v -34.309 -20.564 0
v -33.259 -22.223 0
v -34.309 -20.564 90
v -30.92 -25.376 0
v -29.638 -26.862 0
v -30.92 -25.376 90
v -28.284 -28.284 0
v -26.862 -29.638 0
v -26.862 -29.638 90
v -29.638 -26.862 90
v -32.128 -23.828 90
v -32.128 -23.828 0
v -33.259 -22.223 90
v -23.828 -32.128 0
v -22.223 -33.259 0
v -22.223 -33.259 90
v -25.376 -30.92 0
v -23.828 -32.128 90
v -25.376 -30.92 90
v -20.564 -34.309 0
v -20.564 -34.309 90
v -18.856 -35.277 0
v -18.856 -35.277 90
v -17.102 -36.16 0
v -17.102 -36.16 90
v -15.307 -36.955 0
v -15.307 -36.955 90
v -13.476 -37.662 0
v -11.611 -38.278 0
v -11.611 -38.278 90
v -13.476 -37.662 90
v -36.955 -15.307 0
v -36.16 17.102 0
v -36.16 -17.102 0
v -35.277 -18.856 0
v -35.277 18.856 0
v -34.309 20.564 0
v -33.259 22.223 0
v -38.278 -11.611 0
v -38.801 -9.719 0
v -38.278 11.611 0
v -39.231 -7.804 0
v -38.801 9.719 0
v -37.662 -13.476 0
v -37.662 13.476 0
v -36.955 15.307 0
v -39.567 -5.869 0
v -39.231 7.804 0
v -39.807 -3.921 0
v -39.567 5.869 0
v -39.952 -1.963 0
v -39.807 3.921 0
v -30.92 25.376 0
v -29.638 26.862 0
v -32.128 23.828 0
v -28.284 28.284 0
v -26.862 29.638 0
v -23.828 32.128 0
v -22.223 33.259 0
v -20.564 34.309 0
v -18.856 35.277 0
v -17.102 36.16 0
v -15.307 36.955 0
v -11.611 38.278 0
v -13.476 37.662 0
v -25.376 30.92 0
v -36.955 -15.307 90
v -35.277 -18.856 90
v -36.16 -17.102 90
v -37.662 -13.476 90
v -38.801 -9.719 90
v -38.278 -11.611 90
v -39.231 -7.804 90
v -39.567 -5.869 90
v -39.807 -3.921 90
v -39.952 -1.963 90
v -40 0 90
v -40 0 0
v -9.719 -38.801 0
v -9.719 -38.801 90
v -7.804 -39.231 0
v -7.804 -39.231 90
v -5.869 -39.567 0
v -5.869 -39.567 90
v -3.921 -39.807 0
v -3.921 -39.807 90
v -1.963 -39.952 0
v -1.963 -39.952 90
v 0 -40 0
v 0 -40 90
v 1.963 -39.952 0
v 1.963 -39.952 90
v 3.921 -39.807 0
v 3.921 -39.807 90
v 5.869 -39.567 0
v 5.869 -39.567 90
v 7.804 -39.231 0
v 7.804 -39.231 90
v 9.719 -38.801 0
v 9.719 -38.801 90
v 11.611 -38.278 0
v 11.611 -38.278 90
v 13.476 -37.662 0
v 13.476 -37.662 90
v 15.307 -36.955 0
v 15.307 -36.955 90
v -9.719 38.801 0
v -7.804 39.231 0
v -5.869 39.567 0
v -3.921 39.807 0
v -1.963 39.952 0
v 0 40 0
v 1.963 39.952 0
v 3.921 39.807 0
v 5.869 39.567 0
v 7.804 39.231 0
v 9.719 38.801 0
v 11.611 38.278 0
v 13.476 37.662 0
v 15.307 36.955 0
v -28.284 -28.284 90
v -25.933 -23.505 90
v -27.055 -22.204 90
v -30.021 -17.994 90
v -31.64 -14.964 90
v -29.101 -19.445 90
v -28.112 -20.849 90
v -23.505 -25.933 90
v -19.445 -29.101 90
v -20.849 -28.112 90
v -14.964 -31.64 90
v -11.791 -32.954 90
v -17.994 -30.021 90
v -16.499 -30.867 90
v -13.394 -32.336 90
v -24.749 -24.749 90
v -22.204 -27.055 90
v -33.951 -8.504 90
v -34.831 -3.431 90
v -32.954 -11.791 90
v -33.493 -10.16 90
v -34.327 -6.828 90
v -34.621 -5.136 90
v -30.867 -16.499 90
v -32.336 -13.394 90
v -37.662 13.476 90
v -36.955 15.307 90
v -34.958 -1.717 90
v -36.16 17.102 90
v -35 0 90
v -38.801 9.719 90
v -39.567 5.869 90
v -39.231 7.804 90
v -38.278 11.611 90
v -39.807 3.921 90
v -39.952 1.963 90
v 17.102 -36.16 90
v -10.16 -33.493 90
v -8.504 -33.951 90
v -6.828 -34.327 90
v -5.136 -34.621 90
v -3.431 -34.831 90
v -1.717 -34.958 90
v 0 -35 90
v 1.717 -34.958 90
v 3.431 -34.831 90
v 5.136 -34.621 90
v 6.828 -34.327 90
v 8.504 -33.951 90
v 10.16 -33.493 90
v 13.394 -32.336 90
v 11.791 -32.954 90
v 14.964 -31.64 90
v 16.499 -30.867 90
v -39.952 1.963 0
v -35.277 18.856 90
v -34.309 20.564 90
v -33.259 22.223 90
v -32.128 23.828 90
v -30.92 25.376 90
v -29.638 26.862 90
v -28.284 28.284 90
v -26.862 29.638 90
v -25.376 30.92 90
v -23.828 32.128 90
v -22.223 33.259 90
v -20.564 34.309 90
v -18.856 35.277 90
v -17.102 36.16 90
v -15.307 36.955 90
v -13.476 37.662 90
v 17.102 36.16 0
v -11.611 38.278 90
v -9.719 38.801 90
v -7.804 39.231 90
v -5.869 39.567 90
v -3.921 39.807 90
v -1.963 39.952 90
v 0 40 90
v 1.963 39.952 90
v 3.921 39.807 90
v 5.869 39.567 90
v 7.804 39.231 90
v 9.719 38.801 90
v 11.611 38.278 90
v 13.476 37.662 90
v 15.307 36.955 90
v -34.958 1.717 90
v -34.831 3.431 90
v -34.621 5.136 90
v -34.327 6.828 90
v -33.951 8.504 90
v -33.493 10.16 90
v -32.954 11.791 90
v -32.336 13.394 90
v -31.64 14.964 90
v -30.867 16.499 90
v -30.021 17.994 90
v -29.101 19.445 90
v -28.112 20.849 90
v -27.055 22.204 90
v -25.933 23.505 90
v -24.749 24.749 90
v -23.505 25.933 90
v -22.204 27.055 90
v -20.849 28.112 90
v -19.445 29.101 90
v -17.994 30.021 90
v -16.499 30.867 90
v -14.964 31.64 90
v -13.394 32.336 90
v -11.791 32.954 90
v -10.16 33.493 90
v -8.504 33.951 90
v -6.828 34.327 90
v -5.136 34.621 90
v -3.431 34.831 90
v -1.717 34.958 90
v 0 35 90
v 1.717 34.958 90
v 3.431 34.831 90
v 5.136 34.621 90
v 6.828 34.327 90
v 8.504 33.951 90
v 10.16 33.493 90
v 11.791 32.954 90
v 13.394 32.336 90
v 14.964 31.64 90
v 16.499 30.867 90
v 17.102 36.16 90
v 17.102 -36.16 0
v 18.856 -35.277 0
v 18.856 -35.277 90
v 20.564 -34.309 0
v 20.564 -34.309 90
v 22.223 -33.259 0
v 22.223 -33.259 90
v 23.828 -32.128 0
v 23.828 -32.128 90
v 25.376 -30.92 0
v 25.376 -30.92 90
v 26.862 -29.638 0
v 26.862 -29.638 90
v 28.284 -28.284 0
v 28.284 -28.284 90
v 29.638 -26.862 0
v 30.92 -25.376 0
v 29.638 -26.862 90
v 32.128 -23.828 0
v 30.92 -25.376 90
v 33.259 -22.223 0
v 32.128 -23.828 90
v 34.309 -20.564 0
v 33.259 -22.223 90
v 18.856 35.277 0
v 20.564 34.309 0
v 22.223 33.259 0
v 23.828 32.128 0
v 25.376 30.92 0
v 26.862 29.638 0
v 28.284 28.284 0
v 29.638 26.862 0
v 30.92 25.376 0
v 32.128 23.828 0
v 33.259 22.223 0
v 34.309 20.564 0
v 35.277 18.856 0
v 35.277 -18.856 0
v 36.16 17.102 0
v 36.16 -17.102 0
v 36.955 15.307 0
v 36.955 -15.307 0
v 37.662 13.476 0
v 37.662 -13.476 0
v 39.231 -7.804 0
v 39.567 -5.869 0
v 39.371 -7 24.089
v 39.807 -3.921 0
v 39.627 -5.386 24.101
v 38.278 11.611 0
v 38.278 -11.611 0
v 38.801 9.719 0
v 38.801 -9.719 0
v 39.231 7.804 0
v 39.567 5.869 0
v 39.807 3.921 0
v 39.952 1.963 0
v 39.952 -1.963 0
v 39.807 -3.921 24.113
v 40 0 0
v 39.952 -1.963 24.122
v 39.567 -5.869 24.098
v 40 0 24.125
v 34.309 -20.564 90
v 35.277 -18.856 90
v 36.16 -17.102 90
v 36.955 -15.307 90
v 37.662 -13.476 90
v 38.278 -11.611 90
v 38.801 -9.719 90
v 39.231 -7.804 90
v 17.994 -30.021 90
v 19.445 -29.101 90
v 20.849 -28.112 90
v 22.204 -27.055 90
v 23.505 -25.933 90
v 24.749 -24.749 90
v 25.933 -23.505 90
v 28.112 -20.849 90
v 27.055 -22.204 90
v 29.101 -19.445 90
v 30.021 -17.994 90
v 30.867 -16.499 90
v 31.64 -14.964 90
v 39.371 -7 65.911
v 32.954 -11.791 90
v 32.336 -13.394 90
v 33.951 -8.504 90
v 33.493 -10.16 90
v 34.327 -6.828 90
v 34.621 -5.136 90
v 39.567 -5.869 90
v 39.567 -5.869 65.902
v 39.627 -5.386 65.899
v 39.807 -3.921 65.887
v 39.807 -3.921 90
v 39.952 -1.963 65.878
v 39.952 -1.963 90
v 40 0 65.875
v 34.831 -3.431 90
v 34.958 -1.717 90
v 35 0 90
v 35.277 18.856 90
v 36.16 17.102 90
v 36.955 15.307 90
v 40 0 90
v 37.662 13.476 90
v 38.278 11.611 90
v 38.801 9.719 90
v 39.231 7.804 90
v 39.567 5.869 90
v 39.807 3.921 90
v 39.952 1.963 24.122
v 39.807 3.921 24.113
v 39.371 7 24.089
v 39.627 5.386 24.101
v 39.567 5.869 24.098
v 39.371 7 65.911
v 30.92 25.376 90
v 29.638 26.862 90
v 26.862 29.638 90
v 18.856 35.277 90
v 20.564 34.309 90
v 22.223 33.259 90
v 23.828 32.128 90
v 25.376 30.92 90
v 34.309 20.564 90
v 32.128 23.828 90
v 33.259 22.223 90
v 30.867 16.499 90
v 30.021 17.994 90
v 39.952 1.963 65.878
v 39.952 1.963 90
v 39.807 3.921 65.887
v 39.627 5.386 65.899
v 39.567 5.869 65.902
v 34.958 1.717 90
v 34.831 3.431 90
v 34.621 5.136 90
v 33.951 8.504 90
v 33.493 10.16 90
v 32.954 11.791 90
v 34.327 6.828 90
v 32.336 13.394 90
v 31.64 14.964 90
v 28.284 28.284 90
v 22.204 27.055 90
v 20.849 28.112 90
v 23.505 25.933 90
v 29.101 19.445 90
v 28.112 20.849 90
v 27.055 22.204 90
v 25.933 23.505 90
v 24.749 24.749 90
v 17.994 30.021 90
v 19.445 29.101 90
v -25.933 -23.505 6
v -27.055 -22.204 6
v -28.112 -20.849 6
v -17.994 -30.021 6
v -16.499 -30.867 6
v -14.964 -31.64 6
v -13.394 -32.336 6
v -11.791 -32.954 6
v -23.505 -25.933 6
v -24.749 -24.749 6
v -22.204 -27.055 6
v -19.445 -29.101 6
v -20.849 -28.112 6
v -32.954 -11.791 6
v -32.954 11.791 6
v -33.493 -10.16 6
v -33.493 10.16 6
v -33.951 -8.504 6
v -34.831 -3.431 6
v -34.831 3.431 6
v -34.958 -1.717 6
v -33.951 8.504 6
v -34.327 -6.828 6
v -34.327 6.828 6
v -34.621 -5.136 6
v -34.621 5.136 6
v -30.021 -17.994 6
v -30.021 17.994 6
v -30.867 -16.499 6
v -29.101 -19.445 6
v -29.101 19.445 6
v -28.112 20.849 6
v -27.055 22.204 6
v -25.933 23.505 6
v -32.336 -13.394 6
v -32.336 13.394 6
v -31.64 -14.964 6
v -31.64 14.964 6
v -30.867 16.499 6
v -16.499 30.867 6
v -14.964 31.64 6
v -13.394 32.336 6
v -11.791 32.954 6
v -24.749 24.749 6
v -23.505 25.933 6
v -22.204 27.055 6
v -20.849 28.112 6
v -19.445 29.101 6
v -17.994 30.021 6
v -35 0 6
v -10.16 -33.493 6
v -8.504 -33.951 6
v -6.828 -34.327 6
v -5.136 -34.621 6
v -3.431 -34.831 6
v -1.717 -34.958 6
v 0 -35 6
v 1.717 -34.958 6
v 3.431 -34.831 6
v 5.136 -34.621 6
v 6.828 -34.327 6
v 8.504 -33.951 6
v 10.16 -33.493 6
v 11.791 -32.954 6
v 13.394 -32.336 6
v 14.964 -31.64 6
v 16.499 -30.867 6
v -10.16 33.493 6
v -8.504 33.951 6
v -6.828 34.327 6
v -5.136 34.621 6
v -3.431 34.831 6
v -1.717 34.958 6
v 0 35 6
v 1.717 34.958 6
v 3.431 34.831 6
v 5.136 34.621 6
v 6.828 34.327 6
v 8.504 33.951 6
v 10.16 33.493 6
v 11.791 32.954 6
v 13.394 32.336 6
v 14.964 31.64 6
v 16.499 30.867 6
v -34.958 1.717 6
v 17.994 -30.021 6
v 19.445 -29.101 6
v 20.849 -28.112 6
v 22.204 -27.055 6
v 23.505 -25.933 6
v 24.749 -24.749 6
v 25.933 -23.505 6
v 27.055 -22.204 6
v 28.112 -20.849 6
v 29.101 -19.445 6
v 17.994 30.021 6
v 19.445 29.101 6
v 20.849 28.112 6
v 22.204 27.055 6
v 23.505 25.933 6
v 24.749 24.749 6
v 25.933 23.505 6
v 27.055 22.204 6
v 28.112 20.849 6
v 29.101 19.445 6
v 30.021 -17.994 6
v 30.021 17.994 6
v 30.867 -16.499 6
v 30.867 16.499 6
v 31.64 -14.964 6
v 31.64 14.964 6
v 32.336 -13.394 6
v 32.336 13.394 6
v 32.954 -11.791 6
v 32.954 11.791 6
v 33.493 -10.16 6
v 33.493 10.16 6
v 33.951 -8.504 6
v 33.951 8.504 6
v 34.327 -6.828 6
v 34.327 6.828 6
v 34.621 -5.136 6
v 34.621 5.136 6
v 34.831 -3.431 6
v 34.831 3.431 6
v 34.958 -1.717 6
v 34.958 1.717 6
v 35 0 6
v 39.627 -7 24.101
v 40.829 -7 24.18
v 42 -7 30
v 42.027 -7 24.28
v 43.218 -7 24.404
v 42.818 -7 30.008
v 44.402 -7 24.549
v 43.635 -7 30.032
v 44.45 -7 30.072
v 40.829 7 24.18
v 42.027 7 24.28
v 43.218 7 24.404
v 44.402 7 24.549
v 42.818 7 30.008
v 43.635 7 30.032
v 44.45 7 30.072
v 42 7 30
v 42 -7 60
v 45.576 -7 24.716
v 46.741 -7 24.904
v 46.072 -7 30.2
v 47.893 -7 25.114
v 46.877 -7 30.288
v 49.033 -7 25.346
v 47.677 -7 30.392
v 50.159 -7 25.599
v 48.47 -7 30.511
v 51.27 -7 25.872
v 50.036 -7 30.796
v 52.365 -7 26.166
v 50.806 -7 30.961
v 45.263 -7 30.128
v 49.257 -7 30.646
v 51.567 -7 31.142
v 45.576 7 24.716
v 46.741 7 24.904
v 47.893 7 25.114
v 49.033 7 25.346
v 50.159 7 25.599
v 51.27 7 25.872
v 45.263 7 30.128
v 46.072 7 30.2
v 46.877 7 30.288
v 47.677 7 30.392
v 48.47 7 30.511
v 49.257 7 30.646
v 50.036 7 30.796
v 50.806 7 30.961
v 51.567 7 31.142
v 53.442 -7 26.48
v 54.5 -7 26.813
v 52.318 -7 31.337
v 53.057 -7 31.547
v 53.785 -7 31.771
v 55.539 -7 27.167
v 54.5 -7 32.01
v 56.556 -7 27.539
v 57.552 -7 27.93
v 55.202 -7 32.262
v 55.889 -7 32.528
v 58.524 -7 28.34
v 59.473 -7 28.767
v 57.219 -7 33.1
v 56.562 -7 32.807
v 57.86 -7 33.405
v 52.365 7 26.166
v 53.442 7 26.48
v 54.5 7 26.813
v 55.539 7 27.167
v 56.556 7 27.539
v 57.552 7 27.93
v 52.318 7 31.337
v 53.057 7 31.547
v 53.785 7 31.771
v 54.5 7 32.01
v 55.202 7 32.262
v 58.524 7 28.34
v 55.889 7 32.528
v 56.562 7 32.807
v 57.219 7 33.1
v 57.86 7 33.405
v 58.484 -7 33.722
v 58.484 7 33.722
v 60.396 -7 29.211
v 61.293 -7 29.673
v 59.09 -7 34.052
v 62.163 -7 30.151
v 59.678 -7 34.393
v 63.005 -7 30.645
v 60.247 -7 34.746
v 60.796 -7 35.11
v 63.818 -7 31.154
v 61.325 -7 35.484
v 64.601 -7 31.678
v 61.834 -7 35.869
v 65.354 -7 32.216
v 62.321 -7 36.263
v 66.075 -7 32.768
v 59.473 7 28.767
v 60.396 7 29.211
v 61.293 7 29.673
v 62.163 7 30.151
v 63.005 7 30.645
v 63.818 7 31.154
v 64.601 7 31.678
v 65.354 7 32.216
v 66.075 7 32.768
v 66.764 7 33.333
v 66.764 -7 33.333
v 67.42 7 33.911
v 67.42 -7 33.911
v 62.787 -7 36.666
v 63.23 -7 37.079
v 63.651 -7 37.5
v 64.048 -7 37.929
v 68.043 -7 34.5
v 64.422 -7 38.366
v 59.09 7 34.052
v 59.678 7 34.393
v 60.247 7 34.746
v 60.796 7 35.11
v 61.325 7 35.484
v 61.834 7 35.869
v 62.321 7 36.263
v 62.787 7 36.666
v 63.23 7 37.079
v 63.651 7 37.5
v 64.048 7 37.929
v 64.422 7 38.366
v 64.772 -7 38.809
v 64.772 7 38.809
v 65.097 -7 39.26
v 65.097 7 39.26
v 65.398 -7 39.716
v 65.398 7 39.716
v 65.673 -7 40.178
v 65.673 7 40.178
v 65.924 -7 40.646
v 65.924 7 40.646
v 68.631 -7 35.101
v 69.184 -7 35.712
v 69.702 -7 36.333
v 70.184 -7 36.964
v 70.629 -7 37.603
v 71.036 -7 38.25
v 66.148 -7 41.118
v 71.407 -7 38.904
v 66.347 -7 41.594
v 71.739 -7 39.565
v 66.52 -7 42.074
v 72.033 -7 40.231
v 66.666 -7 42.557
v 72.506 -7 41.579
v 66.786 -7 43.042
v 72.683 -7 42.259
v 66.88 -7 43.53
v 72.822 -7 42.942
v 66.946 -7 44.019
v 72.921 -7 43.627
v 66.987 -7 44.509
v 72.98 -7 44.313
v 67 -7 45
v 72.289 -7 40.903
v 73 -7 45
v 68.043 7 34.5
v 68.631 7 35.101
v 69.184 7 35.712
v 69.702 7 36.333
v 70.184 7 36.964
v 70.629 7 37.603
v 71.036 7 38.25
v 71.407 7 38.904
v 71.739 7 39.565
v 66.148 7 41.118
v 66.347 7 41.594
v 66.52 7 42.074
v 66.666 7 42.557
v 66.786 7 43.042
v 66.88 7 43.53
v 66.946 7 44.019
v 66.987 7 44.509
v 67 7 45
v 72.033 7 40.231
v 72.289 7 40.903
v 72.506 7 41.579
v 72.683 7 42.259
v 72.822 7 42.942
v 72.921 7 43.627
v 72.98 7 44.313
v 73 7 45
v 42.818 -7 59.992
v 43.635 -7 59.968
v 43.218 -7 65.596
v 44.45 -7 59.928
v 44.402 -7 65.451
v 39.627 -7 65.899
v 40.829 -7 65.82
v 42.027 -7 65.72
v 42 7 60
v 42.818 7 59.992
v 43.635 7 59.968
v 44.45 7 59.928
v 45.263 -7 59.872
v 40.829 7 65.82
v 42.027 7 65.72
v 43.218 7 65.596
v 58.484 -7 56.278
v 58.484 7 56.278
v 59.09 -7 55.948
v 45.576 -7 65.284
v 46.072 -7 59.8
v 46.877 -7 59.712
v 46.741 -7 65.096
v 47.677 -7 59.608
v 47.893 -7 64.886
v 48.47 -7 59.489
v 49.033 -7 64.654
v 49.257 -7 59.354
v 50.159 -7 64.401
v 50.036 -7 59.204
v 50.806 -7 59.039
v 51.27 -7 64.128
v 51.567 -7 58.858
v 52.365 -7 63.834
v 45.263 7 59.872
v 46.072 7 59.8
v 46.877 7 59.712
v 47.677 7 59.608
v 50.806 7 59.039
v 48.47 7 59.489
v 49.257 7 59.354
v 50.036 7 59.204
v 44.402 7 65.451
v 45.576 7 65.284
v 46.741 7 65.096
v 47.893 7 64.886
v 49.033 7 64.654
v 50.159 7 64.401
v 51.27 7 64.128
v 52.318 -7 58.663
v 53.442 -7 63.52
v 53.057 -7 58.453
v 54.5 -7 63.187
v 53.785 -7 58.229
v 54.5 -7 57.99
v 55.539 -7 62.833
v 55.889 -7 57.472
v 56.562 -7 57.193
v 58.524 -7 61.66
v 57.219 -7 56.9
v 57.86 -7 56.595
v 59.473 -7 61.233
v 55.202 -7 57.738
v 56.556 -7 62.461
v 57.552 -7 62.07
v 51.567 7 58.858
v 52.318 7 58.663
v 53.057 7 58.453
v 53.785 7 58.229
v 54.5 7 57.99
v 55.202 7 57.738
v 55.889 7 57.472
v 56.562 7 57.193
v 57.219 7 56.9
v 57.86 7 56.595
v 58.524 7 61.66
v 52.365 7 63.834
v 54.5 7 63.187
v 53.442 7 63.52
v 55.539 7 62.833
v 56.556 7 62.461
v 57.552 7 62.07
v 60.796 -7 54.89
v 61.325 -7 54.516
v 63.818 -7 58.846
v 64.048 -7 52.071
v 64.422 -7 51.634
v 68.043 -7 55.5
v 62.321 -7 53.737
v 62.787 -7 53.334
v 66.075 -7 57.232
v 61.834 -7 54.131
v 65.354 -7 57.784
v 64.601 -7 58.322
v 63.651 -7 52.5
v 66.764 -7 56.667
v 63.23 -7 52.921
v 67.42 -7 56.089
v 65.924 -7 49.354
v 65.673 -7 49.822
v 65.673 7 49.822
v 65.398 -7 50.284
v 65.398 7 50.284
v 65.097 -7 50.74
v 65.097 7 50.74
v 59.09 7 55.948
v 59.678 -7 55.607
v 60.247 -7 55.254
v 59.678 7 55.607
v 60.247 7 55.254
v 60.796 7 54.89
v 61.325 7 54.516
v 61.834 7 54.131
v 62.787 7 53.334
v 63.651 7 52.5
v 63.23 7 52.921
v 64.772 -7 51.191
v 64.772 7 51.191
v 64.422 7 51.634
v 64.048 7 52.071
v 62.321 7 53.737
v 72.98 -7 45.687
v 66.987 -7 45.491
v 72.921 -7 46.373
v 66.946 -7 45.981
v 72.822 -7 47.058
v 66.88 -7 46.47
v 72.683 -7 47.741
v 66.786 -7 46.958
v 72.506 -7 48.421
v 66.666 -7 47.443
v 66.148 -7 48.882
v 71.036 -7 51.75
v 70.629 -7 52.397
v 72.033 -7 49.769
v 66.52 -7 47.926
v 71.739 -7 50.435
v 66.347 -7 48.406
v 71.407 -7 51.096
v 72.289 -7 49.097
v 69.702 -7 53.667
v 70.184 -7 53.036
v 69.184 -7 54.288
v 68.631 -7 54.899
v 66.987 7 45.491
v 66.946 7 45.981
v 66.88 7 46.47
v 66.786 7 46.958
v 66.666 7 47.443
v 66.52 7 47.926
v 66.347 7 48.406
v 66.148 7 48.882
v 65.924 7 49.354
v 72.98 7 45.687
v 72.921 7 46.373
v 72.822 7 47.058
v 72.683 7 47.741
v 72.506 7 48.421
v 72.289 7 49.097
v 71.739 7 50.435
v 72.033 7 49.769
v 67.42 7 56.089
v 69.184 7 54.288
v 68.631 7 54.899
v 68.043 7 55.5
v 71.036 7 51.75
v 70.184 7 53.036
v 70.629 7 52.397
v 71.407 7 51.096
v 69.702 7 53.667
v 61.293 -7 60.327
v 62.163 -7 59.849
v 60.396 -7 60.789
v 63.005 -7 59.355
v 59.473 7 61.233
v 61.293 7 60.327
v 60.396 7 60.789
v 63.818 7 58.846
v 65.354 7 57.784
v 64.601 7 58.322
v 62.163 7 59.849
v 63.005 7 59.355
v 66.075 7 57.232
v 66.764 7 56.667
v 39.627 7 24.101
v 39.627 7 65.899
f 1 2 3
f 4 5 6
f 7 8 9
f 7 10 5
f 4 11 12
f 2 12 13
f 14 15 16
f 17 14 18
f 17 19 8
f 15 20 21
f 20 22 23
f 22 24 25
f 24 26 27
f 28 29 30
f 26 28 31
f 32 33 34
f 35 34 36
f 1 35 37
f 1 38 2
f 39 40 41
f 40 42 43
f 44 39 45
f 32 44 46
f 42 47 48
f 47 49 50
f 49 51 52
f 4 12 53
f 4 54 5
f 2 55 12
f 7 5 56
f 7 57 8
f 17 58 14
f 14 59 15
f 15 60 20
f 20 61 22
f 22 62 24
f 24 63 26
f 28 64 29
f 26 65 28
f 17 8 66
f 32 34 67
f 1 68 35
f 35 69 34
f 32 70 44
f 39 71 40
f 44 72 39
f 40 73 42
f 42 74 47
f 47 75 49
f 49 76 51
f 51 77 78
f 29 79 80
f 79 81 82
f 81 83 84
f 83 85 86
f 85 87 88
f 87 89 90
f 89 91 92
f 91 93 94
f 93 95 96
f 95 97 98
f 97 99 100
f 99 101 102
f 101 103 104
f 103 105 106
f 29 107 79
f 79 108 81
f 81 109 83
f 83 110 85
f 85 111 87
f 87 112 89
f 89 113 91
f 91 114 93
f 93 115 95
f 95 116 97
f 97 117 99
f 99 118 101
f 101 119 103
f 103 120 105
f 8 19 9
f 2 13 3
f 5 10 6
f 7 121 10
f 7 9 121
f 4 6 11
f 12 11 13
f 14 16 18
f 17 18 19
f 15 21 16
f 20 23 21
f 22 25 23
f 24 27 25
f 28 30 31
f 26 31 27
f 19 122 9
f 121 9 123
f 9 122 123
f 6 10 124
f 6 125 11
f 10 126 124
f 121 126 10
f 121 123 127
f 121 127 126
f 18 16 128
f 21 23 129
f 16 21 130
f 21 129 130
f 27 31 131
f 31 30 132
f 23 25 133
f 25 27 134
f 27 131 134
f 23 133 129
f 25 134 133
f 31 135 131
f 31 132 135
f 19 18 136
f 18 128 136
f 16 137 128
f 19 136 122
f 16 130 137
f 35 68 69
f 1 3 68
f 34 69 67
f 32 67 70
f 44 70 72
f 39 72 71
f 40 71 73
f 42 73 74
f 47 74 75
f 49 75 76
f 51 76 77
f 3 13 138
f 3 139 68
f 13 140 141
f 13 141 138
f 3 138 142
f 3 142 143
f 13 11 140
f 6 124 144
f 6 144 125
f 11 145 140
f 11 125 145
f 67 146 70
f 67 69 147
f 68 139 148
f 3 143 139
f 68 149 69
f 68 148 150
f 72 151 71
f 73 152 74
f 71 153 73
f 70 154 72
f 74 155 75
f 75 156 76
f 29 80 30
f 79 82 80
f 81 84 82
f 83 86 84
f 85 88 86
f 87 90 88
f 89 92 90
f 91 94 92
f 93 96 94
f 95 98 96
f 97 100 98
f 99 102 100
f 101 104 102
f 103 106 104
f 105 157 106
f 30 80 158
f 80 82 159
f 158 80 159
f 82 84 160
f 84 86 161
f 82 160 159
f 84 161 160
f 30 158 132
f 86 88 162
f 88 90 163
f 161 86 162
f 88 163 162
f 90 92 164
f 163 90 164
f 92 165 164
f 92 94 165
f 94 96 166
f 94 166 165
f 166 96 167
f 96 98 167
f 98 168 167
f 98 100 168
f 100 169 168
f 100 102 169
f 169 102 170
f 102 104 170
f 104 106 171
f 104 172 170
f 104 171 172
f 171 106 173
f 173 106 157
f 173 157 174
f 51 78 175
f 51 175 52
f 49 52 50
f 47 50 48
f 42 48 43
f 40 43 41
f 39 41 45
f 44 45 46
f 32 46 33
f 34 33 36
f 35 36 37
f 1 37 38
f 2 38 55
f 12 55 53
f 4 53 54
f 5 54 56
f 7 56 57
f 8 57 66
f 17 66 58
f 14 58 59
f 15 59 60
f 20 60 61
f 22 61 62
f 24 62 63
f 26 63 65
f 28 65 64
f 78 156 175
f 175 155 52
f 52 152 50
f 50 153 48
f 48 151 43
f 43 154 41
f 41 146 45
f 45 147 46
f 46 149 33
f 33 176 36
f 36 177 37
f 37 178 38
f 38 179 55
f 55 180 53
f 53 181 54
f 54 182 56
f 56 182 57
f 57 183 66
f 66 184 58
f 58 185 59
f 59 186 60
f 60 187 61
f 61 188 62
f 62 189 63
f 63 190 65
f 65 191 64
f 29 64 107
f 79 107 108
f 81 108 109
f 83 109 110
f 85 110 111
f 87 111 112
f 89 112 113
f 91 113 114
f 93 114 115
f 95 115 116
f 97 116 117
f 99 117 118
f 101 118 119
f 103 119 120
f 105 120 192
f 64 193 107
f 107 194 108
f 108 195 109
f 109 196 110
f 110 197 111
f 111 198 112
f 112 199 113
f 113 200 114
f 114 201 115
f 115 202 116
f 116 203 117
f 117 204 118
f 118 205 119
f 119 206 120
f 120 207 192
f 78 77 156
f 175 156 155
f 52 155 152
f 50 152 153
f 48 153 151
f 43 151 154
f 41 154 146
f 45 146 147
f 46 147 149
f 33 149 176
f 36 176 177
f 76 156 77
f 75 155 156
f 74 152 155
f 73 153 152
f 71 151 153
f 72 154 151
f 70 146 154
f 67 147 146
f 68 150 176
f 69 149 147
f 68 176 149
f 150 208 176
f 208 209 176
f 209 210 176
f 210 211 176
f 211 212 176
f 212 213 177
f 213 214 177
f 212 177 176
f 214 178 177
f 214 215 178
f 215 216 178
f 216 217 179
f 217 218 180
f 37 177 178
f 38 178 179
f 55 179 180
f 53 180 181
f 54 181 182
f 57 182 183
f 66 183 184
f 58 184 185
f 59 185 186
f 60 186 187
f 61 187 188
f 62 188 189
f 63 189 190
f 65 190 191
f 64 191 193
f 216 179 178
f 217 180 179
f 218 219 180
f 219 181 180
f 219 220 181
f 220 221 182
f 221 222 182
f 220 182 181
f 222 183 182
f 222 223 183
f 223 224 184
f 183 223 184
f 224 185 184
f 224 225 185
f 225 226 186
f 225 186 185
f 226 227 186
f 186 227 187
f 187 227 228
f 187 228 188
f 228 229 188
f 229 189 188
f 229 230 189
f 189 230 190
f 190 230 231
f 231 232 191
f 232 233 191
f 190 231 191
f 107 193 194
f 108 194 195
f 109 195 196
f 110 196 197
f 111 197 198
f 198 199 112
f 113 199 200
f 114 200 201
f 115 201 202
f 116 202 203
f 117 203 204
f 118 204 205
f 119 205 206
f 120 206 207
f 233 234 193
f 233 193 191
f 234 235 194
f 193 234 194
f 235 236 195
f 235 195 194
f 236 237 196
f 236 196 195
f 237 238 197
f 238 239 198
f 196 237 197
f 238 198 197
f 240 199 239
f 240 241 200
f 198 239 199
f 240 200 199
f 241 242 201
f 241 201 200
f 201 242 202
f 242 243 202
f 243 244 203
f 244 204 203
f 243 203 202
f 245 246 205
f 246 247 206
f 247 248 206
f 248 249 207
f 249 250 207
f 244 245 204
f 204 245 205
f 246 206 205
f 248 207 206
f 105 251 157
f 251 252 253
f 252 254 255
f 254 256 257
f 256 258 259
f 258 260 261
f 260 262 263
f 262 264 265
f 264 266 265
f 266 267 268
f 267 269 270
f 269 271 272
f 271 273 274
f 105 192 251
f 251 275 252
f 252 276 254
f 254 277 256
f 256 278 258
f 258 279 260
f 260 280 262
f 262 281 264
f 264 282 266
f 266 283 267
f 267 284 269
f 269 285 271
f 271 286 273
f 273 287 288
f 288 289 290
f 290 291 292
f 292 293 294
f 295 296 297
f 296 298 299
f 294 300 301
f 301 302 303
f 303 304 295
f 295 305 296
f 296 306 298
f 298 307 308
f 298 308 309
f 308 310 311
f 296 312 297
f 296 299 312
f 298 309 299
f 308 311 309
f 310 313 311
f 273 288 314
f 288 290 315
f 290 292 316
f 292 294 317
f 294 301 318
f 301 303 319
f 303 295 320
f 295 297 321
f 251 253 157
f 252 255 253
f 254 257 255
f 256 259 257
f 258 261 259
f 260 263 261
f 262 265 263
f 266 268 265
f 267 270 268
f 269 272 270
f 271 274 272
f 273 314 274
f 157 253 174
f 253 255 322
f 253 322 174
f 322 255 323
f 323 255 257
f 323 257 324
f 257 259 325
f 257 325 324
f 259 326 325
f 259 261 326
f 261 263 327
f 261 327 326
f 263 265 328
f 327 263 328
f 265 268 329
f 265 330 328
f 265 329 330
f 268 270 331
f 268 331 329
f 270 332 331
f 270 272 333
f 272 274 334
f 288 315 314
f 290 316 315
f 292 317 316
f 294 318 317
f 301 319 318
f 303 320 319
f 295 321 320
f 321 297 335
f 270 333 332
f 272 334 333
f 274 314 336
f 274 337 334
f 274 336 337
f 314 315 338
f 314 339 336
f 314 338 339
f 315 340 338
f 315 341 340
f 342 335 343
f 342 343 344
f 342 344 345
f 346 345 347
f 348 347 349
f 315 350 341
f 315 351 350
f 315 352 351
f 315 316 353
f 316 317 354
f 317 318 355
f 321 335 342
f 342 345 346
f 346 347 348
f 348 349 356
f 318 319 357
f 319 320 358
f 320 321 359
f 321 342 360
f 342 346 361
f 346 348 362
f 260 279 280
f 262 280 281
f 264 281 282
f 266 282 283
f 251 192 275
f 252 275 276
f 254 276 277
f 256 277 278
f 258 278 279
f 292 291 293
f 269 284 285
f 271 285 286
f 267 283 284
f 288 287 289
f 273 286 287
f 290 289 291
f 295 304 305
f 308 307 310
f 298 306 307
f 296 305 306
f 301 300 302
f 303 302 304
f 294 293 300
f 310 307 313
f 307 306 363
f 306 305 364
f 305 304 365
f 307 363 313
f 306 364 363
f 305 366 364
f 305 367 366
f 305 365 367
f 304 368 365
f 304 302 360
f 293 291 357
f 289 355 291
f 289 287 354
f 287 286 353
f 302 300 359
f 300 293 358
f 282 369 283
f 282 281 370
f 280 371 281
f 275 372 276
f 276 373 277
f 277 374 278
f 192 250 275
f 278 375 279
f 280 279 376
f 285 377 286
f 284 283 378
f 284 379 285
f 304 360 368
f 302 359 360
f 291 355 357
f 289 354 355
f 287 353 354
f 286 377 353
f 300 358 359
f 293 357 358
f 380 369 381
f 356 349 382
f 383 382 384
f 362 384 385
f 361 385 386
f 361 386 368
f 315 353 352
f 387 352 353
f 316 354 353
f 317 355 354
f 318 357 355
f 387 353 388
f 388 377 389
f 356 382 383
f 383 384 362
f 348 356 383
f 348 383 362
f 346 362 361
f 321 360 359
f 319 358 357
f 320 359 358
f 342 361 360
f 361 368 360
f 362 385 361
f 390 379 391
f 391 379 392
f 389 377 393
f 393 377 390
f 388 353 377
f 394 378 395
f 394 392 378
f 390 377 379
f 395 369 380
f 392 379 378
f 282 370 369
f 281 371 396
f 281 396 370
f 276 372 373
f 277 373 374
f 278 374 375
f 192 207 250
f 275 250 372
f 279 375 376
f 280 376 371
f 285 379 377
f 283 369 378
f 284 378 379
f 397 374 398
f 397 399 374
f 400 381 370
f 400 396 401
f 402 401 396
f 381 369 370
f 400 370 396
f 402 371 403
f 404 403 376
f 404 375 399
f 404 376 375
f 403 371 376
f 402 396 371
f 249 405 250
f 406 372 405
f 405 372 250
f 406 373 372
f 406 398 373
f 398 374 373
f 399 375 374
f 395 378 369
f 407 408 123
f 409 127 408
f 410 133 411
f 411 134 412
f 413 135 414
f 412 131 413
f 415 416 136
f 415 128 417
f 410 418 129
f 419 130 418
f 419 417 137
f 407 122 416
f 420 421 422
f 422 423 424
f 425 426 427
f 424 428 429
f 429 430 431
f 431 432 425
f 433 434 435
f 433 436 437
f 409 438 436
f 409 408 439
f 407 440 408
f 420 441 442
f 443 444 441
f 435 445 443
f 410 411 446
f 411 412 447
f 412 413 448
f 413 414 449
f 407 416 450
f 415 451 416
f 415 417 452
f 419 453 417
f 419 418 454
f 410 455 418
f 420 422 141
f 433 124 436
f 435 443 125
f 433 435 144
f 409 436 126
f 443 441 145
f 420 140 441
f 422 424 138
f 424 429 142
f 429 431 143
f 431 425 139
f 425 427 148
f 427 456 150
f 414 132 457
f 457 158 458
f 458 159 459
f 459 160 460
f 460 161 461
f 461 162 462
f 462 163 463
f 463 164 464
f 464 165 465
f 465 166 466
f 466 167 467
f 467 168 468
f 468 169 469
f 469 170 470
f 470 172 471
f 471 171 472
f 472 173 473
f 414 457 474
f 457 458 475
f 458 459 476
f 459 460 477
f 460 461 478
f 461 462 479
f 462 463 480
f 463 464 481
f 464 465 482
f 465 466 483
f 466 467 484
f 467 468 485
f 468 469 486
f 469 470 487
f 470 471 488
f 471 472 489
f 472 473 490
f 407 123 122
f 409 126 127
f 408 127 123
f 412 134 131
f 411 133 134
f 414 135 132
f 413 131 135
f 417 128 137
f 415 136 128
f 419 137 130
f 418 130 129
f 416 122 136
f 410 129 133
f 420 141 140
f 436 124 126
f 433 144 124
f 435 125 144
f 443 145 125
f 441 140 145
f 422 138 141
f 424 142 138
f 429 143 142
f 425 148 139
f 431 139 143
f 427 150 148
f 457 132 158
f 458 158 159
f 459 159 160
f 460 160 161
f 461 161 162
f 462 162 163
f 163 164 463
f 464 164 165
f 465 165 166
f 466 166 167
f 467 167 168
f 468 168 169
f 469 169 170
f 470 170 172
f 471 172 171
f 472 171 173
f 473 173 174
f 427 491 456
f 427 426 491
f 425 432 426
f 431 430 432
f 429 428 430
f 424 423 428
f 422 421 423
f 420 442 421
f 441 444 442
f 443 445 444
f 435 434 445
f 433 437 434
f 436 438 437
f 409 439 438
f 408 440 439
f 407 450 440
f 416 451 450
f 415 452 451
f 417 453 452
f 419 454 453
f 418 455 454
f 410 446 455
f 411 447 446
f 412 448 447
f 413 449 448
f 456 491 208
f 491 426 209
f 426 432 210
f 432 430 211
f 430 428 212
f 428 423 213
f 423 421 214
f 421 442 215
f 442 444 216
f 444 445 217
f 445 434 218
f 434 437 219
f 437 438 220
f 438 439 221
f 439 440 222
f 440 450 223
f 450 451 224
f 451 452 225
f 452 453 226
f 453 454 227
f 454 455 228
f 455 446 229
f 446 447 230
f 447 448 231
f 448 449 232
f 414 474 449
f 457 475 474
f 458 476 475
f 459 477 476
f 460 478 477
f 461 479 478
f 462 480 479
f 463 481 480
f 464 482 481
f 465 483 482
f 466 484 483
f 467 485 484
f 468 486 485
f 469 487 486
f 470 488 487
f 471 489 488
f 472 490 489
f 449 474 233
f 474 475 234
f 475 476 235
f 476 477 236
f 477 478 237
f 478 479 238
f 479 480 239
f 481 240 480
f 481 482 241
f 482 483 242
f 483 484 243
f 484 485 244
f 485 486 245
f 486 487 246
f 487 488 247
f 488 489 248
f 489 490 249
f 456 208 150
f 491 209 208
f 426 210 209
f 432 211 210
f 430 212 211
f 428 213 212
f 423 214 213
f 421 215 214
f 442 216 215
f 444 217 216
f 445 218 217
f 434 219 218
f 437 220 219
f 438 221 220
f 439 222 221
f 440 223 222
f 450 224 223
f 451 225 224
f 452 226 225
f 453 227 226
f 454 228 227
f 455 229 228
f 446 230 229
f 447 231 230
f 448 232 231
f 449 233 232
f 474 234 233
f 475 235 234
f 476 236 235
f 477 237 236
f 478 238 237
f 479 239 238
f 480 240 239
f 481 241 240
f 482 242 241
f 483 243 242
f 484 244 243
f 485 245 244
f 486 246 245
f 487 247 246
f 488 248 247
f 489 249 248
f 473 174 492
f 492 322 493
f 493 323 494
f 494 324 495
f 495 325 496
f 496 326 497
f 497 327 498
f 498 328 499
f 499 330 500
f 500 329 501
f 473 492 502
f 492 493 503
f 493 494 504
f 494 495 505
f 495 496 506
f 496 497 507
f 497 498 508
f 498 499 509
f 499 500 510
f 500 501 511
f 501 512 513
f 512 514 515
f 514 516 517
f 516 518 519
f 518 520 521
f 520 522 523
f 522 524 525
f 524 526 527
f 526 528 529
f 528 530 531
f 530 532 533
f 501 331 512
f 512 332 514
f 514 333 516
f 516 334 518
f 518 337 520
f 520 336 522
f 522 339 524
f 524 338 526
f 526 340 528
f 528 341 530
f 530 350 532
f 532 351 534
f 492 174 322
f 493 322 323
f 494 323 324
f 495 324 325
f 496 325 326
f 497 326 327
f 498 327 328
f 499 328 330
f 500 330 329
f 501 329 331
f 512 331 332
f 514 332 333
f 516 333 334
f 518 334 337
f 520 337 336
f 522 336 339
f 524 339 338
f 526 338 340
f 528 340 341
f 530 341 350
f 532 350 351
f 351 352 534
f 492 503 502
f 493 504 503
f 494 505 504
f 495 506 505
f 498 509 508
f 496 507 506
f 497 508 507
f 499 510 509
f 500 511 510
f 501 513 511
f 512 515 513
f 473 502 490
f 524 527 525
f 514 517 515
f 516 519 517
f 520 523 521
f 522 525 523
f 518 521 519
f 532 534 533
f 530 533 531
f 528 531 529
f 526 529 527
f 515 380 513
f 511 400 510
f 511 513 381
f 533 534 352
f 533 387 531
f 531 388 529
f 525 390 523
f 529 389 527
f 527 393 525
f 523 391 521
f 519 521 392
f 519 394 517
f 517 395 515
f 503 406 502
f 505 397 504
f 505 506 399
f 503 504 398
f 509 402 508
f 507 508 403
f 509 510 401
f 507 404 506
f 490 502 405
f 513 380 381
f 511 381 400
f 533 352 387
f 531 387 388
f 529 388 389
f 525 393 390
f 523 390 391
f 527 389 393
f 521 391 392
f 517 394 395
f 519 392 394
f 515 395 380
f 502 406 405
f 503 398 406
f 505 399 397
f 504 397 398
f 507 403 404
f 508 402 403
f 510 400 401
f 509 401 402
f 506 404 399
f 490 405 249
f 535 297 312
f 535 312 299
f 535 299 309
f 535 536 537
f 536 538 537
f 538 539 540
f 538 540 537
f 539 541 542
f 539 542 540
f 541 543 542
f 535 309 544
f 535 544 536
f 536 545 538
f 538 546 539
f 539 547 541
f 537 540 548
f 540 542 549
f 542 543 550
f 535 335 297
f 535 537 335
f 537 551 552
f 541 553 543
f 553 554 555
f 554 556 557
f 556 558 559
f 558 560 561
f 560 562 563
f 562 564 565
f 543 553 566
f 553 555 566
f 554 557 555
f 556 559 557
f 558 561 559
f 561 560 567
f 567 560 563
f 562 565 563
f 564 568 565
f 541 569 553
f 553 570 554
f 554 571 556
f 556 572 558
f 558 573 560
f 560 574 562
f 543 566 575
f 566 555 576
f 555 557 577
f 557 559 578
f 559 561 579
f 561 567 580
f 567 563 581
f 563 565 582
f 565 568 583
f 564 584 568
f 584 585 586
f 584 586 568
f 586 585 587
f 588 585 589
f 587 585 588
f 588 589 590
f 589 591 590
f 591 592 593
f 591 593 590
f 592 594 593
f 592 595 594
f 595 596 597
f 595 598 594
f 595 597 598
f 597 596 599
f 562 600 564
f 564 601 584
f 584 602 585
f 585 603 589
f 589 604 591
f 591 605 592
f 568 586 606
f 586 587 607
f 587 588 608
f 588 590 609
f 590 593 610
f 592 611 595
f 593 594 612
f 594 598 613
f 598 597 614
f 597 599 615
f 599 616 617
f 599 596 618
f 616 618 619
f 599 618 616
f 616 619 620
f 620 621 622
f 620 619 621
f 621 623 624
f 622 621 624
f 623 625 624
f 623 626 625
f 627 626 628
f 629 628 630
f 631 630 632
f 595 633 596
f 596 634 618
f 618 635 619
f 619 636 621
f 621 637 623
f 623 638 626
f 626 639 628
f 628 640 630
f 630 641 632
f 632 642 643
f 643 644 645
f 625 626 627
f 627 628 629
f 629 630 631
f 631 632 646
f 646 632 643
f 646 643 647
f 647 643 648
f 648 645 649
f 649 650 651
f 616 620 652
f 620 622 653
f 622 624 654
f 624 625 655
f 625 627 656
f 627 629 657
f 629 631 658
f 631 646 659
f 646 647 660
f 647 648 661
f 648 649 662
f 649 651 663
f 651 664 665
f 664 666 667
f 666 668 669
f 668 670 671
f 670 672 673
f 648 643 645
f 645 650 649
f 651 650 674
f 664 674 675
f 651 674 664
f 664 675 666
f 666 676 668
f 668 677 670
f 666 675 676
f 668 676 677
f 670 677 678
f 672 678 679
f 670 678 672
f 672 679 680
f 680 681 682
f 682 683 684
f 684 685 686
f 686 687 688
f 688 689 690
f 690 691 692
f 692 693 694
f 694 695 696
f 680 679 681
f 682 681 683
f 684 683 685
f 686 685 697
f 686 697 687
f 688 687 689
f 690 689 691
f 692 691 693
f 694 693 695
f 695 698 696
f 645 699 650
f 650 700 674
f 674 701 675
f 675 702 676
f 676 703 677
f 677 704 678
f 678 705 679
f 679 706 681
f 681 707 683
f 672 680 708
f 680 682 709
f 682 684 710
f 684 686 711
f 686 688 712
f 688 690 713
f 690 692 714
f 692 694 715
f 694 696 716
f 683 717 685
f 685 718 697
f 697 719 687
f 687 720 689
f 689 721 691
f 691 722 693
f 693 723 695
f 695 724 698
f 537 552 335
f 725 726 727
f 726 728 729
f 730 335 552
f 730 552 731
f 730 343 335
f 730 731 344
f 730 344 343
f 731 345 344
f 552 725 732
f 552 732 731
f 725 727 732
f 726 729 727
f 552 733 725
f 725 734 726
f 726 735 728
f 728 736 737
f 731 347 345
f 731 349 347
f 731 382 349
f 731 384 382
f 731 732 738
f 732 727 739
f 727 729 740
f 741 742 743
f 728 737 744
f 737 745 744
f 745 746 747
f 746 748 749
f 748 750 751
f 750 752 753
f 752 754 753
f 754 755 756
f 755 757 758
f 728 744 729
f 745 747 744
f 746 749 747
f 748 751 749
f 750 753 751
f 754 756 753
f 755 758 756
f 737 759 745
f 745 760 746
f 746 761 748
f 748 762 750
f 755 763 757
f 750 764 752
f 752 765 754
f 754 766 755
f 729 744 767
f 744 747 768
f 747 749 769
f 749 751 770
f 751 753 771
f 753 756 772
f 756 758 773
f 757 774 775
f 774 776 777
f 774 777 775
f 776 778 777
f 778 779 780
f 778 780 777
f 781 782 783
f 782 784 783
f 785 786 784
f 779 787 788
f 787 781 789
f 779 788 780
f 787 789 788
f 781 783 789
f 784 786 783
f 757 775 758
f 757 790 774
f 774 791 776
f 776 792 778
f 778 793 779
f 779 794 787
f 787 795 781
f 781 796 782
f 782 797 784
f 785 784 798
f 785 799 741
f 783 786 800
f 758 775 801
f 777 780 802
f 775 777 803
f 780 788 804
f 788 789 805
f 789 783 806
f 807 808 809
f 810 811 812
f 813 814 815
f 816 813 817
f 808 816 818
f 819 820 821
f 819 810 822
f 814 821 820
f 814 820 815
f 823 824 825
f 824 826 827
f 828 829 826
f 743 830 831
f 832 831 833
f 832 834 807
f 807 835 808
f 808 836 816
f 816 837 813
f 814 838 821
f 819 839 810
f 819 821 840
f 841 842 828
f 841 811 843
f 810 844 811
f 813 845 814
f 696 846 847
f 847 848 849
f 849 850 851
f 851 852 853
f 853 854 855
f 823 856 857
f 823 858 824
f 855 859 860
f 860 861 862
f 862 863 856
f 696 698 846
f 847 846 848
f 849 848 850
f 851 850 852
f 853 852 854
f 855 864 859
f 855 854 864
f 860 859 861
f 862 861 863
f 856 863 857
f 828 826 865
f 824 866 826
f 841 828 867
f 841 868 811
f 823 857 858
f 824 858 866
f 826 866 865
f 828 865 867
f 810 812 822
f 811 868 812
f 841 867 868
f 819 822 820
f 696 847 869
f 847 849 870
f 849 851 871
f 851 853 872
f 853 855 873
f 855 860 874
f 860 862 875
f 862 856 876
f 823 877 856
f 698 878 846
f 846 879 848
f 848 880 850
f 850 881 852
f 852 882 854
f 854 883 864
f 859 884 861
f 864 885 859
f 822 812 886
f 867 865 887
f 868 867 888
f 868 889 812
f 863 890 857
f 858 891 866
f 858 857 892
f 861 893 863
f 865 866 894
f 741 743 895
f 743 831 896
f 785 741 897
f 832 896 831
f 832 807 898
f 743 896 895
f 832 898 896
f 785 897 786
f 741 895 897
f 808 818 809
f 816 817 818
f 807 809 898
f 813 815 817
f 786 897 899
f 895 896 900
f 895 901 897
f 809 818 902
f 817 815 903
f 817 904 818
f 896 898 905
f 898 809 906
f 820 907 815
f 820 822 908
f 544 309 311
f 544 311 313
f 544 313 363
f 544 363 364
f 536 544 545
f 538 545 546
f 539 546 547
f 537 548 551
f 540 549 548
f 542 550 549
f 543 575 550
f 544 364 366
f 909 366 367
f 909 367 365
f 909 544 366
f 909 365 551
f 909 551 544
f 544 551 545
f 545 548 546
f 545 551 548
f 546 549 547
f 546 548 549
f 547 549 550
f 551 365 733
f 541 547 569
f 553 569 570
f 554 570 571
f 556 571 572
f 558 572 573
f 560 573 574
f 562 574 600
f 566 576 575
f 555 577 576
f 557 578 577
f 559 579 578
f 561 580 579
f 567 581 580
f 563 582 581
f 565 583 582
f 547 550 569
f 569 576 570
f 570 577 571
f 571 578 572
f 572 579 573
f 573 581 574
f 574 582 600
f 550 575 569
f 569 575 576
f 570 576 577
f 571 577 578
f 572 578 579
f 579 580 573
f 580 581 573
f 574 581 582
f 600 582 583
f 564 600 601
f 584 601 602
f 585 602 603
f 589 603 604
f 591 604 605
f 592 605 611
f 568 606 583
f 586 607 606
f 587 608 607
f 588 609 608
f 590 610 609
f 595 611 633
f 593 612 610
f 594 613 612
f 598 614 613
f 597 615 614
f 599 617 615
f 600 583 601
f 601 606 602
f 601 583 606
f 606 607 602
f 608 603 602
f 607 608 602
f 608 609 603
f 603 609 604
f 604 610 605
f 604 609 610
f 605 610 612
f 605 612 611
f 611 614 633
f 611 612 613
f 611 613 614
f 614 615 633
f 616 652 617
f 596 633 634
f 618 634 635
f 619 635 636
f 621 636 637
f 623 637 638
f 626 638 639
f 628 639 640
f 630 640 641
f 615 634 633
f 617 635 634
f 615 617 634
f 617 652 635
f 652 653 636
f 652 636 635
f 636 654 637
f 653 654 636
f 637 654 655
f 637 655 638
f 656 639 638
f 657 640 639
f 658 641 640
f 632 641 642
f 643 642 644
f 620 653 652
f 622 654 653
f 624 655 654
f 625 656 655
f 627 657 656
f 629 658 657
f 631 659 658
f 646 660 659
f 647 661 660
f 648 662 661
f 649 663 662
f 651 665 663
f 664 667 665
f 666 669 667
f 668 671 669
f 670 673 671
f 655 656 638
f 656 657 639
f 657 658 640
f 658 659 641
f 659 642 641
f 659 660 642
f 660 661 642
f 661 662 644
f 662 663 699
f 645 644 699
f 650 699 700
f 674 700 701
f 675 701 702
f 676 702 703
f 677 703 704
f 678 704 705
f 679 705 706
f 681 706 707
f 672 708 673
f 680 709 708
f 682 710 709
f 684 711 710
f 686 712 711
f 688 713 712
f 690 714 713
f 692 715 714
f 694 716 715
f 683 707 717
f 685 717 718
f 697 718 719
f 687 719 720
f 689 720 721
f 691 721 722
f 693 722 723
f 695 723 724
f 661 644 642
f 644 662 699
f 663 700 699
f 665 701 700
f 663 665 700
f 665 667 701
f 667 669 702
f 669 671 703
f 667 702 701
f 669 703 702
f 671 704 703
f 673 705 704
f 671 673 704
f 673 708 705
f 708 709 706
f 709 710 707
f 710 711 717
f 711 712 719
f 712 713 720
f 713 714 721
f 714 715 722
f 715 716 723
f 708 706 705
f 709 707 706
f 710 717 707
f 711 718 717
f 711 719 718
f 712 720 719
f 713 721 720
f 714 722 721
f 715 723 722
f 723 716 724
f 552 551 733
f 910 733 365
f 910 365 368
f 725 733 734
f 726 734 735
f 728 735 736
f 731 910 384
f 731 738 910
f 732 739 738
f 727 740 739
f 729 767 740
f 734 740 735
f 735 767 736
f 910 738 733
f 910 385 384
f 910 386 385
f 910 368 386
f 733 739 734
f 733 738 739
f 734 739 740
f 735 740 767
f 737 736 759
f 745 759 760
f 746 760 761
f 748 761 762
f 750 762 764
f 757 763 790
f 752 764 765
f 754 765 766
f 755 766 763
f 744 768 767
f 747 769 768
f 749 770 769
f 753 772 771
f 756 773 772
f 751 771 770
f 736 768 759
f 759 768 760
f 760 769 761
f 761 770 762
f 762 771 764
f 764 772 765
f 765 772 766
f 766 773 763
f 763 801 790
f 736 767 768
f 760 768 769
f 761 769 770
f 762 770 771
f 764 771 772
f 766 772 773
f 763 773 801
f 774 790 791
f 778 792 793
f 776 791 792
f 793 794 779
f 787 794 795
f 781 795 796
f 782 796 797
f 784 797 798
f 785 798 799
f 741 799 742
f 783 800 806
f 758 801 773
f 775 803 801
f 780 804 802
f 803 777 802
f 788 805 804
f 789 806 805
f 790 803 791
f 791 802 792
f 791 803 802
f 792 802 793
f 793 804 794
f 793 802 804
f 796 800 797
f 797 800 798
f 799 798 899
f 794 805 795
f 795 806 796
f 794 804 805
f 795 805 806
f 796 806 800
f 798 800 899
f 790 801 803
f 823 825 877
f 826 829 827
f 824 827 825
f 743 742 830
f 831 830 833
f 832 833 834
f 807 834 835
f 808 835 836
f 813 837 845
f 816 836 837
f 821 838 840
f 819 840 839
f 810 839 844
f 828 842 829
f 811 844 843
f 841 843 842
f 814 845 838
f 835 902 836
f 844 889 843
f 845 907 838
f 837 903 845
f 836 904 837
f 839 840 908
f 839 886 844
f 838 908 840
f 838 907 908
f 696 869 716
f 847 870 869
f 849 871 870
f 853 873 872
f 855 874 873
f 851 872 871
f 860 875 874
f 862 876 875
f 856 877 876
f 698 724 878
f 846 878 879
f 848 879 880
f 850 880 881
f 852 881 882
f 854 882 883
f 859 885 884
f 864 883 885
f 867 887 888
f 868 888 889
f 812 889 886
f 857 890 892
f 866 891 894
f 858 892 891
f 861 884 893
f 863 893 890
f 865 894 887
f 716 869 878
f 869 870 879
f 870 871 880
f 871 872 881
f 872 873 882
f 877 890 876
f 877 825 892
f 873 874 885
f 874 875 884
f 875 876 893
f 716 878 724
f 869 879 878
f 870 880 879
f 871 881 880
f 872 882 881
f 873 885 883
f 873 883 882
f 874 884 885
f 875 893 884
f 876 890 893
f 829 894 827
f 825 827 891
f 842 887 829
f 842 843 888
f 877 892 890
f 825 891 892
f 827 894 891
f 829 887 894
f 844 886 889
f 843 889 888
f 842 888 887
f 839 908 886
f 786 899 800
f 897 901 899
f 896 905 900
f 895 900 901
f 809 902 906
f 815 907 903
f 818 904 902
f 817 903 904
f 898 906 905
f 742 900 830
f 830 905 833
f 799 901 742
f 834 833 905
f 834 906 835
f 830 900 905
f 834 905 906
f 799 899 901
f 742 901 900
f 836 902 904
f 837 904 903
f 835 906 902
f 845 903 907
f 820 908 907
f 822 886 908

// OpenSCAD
$fn = 128;

cup_outer_diameter = 80;
cup_inner_diameter = 70;
cup_height         = 90;
bottom_thickness   = 6;

handle_center_z = cup_height / 2;
handle_depth    = 14;

// 内側空間: 高さ30mm × 幅25mm
inner_flat_x    = 42;
inner_width     = 25;
inner_half_h    = 15;

// 外側D形状
outer_flat_x    = 36;
outer_width     = 37;
outer_half_h    = 21;

profile_steps = 96;

module d_profile(flat_x, width, half_height, center_z) {
    polygon(
        points = concat(
            [[flat_x, center_z - half_height]],
            [
                for (a = [-90 : 180 / profile_steps : 90])
                    [
                        flat_x + width * cos(a),
                        center_z + half_height * sin(a)
                    ]
            ],
            [[flat_x, center_z + half_height]]
        )
    );
}

module mug_body() {
    difference() {
        cylinder(
            h = cup_height,
            d = cup_outer_diameter
        );

        translate([0, 0, bottom_thickness])
            cylinder(
                h = cup_height - bottom_thickness + 0.2,
                d = cup_inner_diameter
            );
    }
}

module handle() {
    rotate([90, 0, 0])
        linear_extrude(
            height = handle_depth,
            center = true,
            convexity = 10
        )
            difference() {
                d_profile(
                    outer_flat_x,
                    outer_width,
                    outer_half_h,
                    handle_center_z
                );

                d_profile(
                    inner_flat_x,
                    inner_width,
                    inner_half_h,
                    handle_center_z
                );
            }
}

union() {
    mug_body();
    handle();
}
